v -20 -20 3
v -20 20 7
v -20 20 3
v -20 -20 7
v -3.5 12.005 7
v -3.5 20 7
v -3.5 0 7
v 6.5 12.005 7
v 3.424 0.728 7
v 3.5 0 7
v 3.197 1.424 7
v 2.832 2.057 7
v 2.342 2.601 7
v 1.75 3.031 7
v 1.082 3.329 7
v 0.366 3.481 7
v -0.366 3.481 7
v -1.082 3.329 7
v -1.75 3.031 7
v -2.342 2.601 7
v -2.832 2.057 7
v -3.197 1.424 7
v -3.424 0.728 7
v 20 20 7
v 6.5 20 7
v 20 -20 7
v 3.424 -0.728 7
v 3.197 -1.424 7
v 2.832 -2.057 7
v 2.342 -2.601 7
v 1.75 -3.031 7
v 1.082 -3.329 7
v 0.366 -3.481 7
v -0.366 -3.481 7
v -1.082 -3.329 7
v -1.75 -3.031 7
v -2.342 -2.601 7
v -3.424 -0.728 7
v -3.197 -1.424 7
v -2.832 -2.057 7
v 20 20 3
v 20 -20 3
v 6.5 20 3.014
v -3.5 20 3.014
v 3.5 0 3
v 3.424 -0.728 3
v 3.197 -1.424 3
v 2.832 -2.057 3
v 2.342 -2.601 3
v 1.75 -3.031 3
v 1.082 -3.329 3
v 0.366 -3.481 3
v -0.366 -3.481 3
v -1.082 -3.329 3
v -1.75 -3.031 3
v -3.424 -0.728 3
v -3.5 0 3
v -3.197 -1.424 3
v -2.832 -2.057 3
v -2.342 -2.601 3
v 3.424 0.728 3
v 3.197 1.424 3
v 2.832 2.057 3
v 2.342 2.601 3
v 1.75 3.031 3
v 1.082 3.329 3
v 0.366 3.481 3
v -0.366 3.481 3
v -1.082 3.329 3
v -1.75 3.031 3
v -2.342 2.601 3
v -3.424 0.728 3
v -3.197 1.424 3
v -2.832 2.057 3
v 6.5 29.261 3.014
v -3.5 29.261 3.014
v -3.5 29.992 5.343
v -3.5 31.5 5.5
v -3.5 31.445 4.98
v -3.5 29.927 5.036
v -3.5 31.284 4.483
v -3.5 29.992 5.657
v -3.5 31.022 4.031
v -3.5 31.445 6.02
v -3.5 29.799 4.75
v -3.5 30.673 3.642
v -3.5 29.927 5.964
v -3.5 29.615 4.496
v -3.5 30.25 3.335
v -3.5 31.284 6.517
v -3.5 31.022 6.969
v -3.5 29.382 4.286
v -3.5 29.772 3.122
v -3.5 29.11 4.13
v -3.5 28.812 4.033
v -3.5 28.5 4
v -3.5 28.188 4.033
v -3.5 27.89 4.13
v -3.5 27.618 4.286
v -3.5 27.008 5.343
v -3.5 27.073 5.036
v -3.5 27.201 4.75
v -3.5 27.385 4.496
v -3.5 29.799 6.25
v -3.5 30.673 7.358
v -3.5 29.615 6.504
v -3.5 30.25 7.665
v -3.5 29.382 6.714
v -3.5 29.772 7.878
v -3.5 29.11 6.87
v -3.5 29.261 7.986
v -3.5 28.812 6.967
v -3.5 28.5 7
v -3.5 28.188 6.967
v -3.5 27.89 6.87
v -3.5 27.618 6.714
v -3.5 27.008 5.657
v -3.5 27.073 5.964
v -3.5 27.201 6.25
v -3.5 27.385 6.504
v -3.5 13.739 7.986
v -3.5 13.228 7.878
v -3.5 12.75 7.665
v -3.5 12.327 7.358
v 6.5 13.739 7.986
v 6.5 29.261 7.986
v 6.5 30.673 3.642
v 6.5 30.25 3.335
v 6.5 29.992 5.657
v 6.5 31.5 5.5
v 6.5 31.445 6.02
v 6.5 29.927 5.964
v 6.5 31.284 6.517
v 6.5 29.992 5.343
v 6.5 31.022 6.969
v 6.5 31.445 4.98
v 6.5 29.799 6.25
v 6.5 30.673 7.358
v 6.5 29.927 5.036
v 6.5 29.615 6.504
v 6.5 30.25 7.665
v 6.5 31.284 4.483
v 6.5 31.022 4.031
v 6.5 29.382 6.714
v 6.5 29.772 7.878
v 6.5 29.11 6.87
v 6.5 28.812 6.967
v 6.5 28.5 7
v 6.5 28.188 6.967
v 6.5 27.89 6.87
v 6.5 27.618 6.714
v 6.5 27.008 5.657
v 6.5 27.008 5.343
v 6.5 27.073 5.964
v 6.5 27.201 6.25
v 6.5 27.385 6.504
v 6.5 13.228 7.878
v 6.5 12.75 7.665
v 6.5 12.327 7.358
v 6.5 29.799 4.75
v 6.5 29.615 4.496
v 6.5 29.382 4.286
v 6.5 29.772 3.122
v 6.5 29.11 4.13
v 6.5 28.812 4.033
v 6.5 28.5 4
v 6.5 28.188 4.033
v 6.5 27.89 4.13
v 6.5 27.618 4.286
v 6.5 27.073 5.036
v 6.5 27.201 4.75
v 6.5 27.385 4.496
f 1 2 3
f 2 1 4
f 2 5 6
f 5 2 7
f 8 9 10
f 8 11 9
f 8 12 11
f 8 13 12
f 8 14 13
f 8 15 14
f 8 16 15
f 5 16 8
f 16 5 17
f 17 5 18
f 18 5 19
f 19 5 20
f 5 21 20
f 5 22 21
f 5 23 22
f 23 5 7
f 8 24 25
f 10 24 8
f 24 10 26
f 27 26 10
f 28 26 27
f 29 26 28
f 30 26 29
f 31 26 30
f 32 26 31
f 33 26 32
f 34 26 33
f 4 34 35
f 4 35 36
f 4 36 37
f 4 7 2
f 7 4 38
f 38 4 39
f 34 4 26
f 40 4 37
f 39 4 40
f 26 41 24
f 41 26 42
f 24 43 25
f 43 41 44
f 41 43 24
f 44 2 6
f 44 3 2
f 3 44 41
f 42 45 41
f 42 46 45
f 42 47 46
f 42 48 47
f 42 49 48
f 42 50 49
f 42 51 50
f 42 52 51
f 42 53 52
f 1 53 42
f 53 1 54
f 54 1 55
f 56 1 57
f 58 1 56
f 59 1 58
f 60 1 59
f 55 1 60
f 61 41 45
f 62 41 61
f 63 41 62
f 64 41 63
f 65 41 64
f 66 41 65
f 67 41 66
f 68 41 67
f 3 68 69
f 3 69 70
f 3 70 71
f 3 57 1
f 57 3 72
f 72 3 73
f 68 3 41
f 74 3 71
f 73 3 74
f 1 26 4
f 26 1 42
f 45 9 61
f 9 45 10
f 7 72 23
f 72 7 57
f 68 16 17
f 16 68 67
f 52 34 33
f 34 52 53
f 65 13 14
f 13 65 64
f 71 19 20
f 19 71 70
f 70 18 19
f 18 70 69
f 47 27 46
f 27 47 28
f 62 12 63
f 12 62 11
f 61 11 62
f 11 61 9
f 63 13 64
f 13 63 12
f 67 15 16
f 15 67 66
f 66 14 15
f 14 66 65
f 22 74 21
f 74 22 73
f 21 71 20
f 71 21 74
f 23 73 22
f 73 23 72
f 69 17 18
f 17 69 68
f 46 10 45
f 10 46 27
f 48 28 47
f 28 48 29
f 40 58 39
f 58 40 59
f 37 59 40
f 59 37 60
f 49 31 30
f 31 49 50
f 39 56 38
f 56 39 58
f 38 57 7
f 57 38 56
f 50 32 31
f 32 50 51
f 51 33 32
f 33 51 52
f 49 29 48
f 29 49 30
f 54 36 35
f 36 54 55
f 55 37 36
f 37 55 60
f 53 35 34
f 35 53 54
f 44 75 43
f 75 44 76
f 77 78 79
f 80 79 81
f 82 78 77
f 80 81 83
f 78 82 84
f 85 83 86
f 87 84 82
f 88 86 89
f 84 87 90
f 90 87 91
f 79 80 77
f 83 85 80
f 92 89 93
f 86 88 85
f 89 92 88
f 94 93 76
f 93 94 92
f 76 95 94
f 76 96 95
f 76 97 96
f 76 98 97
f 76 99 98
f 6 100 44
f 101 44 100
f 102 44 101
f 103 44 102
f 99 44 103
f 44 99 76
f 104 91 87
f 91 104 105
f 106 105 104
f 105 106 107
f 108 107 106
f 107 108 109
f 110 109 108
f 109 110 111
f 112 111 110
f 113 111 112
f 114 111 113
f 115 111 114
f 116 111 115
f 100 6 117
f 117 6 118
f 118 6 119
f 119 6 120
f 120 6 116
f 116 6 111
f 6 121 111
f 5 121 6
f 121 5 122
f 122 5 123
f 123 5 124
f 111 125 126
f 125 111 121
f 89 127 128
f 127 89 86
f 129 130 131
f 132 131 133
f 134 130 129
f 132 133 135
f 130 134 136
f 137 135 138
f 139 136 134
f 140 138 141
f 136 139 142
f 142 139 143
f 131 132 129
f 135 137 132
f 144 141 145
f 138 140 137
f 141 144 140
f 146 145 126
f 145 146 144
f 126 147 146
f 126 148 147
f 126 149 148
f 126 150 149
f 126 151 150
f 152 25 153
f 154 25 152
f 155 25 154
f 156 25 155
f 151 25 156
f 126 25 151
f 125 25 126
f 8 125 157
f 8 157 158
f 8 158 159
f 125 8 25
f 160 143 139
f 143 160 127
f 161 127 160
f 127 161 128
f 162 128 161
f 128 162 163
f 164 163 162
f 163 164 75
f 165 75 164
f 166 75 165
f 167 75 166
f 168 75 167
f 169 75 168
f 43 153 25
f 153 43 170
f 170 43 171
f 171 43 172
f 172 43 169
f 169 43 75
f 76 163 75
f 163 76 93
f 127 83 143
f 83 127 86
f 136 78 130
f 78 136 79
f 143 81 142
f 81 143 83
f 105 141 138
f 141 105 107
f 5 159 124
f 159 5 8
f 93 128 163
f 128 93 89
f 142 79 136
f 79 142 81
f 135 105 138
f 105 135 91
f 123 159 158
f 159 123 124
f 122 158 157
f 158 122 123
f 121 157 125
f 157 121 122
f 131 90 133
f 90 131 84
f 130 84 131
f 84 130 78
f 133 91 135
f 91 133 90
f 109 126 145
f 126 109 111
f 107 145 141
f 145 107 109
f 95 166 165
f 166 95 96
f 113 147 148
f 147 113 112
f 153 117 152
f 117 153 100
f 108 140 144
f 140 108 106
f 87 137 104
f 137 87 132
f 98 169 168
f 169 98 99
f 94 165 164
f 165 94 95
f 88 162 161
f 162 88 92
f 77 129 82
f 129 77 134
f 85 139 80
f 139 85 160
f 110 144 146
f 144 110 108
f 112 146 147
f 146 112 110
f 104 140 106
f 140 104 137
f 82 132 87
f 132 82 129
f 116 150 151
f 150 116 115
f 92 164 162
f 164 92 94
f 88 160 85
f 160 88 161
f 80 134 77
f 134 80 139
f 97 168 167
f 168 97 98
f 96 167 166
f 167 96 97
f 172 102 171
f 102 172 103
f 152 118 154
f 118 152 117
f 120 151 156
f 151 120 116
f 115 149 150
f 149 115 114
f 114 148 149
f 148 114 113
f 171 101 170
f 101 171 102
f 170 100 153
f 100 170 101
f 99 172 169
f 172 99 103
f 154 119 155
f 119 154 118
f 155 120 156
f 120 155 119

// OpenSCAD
// Webcam Plateau

module Mount(){
    translate([-10,68,-10])
    import("Camera_Mount_to_frame.stl");
}

module Screw(){
    translate([0,0,-7])
    import("camera_screw.stl");
}


module Extender(){
    rotate([0,0,180])
    translate([12.5,-104,2])
    import("raspberry_camera_extender.stl");
}


module Plateau() {
    translate([0,0,12])
    
    difference(){
        cube([40,40,4],center=true);
        cylinder(d=7,h=7,center=true,$fn=30);
    }

    difference(){
        translate([0,14,-2.5])
        rotate([-90,0,0])
        rotate([0,-90,0])
        translate([0,-15,-1.5])
        hull(){
            cylinder(d=5,h=10,center=true,$fn=30);
            translate([15,0,0])
            cylinder(d=5,h=10,center=true,$fn=30);
        }
        rotate([0,90,0])
        translate([-12.5,28.5,0])
        cylinder(d=3,h=20,center=true,$fn=30);
   }
}

/*
Mount();
Screw();
Extender();
*/

translate([0,0,-7])
Plateau();
